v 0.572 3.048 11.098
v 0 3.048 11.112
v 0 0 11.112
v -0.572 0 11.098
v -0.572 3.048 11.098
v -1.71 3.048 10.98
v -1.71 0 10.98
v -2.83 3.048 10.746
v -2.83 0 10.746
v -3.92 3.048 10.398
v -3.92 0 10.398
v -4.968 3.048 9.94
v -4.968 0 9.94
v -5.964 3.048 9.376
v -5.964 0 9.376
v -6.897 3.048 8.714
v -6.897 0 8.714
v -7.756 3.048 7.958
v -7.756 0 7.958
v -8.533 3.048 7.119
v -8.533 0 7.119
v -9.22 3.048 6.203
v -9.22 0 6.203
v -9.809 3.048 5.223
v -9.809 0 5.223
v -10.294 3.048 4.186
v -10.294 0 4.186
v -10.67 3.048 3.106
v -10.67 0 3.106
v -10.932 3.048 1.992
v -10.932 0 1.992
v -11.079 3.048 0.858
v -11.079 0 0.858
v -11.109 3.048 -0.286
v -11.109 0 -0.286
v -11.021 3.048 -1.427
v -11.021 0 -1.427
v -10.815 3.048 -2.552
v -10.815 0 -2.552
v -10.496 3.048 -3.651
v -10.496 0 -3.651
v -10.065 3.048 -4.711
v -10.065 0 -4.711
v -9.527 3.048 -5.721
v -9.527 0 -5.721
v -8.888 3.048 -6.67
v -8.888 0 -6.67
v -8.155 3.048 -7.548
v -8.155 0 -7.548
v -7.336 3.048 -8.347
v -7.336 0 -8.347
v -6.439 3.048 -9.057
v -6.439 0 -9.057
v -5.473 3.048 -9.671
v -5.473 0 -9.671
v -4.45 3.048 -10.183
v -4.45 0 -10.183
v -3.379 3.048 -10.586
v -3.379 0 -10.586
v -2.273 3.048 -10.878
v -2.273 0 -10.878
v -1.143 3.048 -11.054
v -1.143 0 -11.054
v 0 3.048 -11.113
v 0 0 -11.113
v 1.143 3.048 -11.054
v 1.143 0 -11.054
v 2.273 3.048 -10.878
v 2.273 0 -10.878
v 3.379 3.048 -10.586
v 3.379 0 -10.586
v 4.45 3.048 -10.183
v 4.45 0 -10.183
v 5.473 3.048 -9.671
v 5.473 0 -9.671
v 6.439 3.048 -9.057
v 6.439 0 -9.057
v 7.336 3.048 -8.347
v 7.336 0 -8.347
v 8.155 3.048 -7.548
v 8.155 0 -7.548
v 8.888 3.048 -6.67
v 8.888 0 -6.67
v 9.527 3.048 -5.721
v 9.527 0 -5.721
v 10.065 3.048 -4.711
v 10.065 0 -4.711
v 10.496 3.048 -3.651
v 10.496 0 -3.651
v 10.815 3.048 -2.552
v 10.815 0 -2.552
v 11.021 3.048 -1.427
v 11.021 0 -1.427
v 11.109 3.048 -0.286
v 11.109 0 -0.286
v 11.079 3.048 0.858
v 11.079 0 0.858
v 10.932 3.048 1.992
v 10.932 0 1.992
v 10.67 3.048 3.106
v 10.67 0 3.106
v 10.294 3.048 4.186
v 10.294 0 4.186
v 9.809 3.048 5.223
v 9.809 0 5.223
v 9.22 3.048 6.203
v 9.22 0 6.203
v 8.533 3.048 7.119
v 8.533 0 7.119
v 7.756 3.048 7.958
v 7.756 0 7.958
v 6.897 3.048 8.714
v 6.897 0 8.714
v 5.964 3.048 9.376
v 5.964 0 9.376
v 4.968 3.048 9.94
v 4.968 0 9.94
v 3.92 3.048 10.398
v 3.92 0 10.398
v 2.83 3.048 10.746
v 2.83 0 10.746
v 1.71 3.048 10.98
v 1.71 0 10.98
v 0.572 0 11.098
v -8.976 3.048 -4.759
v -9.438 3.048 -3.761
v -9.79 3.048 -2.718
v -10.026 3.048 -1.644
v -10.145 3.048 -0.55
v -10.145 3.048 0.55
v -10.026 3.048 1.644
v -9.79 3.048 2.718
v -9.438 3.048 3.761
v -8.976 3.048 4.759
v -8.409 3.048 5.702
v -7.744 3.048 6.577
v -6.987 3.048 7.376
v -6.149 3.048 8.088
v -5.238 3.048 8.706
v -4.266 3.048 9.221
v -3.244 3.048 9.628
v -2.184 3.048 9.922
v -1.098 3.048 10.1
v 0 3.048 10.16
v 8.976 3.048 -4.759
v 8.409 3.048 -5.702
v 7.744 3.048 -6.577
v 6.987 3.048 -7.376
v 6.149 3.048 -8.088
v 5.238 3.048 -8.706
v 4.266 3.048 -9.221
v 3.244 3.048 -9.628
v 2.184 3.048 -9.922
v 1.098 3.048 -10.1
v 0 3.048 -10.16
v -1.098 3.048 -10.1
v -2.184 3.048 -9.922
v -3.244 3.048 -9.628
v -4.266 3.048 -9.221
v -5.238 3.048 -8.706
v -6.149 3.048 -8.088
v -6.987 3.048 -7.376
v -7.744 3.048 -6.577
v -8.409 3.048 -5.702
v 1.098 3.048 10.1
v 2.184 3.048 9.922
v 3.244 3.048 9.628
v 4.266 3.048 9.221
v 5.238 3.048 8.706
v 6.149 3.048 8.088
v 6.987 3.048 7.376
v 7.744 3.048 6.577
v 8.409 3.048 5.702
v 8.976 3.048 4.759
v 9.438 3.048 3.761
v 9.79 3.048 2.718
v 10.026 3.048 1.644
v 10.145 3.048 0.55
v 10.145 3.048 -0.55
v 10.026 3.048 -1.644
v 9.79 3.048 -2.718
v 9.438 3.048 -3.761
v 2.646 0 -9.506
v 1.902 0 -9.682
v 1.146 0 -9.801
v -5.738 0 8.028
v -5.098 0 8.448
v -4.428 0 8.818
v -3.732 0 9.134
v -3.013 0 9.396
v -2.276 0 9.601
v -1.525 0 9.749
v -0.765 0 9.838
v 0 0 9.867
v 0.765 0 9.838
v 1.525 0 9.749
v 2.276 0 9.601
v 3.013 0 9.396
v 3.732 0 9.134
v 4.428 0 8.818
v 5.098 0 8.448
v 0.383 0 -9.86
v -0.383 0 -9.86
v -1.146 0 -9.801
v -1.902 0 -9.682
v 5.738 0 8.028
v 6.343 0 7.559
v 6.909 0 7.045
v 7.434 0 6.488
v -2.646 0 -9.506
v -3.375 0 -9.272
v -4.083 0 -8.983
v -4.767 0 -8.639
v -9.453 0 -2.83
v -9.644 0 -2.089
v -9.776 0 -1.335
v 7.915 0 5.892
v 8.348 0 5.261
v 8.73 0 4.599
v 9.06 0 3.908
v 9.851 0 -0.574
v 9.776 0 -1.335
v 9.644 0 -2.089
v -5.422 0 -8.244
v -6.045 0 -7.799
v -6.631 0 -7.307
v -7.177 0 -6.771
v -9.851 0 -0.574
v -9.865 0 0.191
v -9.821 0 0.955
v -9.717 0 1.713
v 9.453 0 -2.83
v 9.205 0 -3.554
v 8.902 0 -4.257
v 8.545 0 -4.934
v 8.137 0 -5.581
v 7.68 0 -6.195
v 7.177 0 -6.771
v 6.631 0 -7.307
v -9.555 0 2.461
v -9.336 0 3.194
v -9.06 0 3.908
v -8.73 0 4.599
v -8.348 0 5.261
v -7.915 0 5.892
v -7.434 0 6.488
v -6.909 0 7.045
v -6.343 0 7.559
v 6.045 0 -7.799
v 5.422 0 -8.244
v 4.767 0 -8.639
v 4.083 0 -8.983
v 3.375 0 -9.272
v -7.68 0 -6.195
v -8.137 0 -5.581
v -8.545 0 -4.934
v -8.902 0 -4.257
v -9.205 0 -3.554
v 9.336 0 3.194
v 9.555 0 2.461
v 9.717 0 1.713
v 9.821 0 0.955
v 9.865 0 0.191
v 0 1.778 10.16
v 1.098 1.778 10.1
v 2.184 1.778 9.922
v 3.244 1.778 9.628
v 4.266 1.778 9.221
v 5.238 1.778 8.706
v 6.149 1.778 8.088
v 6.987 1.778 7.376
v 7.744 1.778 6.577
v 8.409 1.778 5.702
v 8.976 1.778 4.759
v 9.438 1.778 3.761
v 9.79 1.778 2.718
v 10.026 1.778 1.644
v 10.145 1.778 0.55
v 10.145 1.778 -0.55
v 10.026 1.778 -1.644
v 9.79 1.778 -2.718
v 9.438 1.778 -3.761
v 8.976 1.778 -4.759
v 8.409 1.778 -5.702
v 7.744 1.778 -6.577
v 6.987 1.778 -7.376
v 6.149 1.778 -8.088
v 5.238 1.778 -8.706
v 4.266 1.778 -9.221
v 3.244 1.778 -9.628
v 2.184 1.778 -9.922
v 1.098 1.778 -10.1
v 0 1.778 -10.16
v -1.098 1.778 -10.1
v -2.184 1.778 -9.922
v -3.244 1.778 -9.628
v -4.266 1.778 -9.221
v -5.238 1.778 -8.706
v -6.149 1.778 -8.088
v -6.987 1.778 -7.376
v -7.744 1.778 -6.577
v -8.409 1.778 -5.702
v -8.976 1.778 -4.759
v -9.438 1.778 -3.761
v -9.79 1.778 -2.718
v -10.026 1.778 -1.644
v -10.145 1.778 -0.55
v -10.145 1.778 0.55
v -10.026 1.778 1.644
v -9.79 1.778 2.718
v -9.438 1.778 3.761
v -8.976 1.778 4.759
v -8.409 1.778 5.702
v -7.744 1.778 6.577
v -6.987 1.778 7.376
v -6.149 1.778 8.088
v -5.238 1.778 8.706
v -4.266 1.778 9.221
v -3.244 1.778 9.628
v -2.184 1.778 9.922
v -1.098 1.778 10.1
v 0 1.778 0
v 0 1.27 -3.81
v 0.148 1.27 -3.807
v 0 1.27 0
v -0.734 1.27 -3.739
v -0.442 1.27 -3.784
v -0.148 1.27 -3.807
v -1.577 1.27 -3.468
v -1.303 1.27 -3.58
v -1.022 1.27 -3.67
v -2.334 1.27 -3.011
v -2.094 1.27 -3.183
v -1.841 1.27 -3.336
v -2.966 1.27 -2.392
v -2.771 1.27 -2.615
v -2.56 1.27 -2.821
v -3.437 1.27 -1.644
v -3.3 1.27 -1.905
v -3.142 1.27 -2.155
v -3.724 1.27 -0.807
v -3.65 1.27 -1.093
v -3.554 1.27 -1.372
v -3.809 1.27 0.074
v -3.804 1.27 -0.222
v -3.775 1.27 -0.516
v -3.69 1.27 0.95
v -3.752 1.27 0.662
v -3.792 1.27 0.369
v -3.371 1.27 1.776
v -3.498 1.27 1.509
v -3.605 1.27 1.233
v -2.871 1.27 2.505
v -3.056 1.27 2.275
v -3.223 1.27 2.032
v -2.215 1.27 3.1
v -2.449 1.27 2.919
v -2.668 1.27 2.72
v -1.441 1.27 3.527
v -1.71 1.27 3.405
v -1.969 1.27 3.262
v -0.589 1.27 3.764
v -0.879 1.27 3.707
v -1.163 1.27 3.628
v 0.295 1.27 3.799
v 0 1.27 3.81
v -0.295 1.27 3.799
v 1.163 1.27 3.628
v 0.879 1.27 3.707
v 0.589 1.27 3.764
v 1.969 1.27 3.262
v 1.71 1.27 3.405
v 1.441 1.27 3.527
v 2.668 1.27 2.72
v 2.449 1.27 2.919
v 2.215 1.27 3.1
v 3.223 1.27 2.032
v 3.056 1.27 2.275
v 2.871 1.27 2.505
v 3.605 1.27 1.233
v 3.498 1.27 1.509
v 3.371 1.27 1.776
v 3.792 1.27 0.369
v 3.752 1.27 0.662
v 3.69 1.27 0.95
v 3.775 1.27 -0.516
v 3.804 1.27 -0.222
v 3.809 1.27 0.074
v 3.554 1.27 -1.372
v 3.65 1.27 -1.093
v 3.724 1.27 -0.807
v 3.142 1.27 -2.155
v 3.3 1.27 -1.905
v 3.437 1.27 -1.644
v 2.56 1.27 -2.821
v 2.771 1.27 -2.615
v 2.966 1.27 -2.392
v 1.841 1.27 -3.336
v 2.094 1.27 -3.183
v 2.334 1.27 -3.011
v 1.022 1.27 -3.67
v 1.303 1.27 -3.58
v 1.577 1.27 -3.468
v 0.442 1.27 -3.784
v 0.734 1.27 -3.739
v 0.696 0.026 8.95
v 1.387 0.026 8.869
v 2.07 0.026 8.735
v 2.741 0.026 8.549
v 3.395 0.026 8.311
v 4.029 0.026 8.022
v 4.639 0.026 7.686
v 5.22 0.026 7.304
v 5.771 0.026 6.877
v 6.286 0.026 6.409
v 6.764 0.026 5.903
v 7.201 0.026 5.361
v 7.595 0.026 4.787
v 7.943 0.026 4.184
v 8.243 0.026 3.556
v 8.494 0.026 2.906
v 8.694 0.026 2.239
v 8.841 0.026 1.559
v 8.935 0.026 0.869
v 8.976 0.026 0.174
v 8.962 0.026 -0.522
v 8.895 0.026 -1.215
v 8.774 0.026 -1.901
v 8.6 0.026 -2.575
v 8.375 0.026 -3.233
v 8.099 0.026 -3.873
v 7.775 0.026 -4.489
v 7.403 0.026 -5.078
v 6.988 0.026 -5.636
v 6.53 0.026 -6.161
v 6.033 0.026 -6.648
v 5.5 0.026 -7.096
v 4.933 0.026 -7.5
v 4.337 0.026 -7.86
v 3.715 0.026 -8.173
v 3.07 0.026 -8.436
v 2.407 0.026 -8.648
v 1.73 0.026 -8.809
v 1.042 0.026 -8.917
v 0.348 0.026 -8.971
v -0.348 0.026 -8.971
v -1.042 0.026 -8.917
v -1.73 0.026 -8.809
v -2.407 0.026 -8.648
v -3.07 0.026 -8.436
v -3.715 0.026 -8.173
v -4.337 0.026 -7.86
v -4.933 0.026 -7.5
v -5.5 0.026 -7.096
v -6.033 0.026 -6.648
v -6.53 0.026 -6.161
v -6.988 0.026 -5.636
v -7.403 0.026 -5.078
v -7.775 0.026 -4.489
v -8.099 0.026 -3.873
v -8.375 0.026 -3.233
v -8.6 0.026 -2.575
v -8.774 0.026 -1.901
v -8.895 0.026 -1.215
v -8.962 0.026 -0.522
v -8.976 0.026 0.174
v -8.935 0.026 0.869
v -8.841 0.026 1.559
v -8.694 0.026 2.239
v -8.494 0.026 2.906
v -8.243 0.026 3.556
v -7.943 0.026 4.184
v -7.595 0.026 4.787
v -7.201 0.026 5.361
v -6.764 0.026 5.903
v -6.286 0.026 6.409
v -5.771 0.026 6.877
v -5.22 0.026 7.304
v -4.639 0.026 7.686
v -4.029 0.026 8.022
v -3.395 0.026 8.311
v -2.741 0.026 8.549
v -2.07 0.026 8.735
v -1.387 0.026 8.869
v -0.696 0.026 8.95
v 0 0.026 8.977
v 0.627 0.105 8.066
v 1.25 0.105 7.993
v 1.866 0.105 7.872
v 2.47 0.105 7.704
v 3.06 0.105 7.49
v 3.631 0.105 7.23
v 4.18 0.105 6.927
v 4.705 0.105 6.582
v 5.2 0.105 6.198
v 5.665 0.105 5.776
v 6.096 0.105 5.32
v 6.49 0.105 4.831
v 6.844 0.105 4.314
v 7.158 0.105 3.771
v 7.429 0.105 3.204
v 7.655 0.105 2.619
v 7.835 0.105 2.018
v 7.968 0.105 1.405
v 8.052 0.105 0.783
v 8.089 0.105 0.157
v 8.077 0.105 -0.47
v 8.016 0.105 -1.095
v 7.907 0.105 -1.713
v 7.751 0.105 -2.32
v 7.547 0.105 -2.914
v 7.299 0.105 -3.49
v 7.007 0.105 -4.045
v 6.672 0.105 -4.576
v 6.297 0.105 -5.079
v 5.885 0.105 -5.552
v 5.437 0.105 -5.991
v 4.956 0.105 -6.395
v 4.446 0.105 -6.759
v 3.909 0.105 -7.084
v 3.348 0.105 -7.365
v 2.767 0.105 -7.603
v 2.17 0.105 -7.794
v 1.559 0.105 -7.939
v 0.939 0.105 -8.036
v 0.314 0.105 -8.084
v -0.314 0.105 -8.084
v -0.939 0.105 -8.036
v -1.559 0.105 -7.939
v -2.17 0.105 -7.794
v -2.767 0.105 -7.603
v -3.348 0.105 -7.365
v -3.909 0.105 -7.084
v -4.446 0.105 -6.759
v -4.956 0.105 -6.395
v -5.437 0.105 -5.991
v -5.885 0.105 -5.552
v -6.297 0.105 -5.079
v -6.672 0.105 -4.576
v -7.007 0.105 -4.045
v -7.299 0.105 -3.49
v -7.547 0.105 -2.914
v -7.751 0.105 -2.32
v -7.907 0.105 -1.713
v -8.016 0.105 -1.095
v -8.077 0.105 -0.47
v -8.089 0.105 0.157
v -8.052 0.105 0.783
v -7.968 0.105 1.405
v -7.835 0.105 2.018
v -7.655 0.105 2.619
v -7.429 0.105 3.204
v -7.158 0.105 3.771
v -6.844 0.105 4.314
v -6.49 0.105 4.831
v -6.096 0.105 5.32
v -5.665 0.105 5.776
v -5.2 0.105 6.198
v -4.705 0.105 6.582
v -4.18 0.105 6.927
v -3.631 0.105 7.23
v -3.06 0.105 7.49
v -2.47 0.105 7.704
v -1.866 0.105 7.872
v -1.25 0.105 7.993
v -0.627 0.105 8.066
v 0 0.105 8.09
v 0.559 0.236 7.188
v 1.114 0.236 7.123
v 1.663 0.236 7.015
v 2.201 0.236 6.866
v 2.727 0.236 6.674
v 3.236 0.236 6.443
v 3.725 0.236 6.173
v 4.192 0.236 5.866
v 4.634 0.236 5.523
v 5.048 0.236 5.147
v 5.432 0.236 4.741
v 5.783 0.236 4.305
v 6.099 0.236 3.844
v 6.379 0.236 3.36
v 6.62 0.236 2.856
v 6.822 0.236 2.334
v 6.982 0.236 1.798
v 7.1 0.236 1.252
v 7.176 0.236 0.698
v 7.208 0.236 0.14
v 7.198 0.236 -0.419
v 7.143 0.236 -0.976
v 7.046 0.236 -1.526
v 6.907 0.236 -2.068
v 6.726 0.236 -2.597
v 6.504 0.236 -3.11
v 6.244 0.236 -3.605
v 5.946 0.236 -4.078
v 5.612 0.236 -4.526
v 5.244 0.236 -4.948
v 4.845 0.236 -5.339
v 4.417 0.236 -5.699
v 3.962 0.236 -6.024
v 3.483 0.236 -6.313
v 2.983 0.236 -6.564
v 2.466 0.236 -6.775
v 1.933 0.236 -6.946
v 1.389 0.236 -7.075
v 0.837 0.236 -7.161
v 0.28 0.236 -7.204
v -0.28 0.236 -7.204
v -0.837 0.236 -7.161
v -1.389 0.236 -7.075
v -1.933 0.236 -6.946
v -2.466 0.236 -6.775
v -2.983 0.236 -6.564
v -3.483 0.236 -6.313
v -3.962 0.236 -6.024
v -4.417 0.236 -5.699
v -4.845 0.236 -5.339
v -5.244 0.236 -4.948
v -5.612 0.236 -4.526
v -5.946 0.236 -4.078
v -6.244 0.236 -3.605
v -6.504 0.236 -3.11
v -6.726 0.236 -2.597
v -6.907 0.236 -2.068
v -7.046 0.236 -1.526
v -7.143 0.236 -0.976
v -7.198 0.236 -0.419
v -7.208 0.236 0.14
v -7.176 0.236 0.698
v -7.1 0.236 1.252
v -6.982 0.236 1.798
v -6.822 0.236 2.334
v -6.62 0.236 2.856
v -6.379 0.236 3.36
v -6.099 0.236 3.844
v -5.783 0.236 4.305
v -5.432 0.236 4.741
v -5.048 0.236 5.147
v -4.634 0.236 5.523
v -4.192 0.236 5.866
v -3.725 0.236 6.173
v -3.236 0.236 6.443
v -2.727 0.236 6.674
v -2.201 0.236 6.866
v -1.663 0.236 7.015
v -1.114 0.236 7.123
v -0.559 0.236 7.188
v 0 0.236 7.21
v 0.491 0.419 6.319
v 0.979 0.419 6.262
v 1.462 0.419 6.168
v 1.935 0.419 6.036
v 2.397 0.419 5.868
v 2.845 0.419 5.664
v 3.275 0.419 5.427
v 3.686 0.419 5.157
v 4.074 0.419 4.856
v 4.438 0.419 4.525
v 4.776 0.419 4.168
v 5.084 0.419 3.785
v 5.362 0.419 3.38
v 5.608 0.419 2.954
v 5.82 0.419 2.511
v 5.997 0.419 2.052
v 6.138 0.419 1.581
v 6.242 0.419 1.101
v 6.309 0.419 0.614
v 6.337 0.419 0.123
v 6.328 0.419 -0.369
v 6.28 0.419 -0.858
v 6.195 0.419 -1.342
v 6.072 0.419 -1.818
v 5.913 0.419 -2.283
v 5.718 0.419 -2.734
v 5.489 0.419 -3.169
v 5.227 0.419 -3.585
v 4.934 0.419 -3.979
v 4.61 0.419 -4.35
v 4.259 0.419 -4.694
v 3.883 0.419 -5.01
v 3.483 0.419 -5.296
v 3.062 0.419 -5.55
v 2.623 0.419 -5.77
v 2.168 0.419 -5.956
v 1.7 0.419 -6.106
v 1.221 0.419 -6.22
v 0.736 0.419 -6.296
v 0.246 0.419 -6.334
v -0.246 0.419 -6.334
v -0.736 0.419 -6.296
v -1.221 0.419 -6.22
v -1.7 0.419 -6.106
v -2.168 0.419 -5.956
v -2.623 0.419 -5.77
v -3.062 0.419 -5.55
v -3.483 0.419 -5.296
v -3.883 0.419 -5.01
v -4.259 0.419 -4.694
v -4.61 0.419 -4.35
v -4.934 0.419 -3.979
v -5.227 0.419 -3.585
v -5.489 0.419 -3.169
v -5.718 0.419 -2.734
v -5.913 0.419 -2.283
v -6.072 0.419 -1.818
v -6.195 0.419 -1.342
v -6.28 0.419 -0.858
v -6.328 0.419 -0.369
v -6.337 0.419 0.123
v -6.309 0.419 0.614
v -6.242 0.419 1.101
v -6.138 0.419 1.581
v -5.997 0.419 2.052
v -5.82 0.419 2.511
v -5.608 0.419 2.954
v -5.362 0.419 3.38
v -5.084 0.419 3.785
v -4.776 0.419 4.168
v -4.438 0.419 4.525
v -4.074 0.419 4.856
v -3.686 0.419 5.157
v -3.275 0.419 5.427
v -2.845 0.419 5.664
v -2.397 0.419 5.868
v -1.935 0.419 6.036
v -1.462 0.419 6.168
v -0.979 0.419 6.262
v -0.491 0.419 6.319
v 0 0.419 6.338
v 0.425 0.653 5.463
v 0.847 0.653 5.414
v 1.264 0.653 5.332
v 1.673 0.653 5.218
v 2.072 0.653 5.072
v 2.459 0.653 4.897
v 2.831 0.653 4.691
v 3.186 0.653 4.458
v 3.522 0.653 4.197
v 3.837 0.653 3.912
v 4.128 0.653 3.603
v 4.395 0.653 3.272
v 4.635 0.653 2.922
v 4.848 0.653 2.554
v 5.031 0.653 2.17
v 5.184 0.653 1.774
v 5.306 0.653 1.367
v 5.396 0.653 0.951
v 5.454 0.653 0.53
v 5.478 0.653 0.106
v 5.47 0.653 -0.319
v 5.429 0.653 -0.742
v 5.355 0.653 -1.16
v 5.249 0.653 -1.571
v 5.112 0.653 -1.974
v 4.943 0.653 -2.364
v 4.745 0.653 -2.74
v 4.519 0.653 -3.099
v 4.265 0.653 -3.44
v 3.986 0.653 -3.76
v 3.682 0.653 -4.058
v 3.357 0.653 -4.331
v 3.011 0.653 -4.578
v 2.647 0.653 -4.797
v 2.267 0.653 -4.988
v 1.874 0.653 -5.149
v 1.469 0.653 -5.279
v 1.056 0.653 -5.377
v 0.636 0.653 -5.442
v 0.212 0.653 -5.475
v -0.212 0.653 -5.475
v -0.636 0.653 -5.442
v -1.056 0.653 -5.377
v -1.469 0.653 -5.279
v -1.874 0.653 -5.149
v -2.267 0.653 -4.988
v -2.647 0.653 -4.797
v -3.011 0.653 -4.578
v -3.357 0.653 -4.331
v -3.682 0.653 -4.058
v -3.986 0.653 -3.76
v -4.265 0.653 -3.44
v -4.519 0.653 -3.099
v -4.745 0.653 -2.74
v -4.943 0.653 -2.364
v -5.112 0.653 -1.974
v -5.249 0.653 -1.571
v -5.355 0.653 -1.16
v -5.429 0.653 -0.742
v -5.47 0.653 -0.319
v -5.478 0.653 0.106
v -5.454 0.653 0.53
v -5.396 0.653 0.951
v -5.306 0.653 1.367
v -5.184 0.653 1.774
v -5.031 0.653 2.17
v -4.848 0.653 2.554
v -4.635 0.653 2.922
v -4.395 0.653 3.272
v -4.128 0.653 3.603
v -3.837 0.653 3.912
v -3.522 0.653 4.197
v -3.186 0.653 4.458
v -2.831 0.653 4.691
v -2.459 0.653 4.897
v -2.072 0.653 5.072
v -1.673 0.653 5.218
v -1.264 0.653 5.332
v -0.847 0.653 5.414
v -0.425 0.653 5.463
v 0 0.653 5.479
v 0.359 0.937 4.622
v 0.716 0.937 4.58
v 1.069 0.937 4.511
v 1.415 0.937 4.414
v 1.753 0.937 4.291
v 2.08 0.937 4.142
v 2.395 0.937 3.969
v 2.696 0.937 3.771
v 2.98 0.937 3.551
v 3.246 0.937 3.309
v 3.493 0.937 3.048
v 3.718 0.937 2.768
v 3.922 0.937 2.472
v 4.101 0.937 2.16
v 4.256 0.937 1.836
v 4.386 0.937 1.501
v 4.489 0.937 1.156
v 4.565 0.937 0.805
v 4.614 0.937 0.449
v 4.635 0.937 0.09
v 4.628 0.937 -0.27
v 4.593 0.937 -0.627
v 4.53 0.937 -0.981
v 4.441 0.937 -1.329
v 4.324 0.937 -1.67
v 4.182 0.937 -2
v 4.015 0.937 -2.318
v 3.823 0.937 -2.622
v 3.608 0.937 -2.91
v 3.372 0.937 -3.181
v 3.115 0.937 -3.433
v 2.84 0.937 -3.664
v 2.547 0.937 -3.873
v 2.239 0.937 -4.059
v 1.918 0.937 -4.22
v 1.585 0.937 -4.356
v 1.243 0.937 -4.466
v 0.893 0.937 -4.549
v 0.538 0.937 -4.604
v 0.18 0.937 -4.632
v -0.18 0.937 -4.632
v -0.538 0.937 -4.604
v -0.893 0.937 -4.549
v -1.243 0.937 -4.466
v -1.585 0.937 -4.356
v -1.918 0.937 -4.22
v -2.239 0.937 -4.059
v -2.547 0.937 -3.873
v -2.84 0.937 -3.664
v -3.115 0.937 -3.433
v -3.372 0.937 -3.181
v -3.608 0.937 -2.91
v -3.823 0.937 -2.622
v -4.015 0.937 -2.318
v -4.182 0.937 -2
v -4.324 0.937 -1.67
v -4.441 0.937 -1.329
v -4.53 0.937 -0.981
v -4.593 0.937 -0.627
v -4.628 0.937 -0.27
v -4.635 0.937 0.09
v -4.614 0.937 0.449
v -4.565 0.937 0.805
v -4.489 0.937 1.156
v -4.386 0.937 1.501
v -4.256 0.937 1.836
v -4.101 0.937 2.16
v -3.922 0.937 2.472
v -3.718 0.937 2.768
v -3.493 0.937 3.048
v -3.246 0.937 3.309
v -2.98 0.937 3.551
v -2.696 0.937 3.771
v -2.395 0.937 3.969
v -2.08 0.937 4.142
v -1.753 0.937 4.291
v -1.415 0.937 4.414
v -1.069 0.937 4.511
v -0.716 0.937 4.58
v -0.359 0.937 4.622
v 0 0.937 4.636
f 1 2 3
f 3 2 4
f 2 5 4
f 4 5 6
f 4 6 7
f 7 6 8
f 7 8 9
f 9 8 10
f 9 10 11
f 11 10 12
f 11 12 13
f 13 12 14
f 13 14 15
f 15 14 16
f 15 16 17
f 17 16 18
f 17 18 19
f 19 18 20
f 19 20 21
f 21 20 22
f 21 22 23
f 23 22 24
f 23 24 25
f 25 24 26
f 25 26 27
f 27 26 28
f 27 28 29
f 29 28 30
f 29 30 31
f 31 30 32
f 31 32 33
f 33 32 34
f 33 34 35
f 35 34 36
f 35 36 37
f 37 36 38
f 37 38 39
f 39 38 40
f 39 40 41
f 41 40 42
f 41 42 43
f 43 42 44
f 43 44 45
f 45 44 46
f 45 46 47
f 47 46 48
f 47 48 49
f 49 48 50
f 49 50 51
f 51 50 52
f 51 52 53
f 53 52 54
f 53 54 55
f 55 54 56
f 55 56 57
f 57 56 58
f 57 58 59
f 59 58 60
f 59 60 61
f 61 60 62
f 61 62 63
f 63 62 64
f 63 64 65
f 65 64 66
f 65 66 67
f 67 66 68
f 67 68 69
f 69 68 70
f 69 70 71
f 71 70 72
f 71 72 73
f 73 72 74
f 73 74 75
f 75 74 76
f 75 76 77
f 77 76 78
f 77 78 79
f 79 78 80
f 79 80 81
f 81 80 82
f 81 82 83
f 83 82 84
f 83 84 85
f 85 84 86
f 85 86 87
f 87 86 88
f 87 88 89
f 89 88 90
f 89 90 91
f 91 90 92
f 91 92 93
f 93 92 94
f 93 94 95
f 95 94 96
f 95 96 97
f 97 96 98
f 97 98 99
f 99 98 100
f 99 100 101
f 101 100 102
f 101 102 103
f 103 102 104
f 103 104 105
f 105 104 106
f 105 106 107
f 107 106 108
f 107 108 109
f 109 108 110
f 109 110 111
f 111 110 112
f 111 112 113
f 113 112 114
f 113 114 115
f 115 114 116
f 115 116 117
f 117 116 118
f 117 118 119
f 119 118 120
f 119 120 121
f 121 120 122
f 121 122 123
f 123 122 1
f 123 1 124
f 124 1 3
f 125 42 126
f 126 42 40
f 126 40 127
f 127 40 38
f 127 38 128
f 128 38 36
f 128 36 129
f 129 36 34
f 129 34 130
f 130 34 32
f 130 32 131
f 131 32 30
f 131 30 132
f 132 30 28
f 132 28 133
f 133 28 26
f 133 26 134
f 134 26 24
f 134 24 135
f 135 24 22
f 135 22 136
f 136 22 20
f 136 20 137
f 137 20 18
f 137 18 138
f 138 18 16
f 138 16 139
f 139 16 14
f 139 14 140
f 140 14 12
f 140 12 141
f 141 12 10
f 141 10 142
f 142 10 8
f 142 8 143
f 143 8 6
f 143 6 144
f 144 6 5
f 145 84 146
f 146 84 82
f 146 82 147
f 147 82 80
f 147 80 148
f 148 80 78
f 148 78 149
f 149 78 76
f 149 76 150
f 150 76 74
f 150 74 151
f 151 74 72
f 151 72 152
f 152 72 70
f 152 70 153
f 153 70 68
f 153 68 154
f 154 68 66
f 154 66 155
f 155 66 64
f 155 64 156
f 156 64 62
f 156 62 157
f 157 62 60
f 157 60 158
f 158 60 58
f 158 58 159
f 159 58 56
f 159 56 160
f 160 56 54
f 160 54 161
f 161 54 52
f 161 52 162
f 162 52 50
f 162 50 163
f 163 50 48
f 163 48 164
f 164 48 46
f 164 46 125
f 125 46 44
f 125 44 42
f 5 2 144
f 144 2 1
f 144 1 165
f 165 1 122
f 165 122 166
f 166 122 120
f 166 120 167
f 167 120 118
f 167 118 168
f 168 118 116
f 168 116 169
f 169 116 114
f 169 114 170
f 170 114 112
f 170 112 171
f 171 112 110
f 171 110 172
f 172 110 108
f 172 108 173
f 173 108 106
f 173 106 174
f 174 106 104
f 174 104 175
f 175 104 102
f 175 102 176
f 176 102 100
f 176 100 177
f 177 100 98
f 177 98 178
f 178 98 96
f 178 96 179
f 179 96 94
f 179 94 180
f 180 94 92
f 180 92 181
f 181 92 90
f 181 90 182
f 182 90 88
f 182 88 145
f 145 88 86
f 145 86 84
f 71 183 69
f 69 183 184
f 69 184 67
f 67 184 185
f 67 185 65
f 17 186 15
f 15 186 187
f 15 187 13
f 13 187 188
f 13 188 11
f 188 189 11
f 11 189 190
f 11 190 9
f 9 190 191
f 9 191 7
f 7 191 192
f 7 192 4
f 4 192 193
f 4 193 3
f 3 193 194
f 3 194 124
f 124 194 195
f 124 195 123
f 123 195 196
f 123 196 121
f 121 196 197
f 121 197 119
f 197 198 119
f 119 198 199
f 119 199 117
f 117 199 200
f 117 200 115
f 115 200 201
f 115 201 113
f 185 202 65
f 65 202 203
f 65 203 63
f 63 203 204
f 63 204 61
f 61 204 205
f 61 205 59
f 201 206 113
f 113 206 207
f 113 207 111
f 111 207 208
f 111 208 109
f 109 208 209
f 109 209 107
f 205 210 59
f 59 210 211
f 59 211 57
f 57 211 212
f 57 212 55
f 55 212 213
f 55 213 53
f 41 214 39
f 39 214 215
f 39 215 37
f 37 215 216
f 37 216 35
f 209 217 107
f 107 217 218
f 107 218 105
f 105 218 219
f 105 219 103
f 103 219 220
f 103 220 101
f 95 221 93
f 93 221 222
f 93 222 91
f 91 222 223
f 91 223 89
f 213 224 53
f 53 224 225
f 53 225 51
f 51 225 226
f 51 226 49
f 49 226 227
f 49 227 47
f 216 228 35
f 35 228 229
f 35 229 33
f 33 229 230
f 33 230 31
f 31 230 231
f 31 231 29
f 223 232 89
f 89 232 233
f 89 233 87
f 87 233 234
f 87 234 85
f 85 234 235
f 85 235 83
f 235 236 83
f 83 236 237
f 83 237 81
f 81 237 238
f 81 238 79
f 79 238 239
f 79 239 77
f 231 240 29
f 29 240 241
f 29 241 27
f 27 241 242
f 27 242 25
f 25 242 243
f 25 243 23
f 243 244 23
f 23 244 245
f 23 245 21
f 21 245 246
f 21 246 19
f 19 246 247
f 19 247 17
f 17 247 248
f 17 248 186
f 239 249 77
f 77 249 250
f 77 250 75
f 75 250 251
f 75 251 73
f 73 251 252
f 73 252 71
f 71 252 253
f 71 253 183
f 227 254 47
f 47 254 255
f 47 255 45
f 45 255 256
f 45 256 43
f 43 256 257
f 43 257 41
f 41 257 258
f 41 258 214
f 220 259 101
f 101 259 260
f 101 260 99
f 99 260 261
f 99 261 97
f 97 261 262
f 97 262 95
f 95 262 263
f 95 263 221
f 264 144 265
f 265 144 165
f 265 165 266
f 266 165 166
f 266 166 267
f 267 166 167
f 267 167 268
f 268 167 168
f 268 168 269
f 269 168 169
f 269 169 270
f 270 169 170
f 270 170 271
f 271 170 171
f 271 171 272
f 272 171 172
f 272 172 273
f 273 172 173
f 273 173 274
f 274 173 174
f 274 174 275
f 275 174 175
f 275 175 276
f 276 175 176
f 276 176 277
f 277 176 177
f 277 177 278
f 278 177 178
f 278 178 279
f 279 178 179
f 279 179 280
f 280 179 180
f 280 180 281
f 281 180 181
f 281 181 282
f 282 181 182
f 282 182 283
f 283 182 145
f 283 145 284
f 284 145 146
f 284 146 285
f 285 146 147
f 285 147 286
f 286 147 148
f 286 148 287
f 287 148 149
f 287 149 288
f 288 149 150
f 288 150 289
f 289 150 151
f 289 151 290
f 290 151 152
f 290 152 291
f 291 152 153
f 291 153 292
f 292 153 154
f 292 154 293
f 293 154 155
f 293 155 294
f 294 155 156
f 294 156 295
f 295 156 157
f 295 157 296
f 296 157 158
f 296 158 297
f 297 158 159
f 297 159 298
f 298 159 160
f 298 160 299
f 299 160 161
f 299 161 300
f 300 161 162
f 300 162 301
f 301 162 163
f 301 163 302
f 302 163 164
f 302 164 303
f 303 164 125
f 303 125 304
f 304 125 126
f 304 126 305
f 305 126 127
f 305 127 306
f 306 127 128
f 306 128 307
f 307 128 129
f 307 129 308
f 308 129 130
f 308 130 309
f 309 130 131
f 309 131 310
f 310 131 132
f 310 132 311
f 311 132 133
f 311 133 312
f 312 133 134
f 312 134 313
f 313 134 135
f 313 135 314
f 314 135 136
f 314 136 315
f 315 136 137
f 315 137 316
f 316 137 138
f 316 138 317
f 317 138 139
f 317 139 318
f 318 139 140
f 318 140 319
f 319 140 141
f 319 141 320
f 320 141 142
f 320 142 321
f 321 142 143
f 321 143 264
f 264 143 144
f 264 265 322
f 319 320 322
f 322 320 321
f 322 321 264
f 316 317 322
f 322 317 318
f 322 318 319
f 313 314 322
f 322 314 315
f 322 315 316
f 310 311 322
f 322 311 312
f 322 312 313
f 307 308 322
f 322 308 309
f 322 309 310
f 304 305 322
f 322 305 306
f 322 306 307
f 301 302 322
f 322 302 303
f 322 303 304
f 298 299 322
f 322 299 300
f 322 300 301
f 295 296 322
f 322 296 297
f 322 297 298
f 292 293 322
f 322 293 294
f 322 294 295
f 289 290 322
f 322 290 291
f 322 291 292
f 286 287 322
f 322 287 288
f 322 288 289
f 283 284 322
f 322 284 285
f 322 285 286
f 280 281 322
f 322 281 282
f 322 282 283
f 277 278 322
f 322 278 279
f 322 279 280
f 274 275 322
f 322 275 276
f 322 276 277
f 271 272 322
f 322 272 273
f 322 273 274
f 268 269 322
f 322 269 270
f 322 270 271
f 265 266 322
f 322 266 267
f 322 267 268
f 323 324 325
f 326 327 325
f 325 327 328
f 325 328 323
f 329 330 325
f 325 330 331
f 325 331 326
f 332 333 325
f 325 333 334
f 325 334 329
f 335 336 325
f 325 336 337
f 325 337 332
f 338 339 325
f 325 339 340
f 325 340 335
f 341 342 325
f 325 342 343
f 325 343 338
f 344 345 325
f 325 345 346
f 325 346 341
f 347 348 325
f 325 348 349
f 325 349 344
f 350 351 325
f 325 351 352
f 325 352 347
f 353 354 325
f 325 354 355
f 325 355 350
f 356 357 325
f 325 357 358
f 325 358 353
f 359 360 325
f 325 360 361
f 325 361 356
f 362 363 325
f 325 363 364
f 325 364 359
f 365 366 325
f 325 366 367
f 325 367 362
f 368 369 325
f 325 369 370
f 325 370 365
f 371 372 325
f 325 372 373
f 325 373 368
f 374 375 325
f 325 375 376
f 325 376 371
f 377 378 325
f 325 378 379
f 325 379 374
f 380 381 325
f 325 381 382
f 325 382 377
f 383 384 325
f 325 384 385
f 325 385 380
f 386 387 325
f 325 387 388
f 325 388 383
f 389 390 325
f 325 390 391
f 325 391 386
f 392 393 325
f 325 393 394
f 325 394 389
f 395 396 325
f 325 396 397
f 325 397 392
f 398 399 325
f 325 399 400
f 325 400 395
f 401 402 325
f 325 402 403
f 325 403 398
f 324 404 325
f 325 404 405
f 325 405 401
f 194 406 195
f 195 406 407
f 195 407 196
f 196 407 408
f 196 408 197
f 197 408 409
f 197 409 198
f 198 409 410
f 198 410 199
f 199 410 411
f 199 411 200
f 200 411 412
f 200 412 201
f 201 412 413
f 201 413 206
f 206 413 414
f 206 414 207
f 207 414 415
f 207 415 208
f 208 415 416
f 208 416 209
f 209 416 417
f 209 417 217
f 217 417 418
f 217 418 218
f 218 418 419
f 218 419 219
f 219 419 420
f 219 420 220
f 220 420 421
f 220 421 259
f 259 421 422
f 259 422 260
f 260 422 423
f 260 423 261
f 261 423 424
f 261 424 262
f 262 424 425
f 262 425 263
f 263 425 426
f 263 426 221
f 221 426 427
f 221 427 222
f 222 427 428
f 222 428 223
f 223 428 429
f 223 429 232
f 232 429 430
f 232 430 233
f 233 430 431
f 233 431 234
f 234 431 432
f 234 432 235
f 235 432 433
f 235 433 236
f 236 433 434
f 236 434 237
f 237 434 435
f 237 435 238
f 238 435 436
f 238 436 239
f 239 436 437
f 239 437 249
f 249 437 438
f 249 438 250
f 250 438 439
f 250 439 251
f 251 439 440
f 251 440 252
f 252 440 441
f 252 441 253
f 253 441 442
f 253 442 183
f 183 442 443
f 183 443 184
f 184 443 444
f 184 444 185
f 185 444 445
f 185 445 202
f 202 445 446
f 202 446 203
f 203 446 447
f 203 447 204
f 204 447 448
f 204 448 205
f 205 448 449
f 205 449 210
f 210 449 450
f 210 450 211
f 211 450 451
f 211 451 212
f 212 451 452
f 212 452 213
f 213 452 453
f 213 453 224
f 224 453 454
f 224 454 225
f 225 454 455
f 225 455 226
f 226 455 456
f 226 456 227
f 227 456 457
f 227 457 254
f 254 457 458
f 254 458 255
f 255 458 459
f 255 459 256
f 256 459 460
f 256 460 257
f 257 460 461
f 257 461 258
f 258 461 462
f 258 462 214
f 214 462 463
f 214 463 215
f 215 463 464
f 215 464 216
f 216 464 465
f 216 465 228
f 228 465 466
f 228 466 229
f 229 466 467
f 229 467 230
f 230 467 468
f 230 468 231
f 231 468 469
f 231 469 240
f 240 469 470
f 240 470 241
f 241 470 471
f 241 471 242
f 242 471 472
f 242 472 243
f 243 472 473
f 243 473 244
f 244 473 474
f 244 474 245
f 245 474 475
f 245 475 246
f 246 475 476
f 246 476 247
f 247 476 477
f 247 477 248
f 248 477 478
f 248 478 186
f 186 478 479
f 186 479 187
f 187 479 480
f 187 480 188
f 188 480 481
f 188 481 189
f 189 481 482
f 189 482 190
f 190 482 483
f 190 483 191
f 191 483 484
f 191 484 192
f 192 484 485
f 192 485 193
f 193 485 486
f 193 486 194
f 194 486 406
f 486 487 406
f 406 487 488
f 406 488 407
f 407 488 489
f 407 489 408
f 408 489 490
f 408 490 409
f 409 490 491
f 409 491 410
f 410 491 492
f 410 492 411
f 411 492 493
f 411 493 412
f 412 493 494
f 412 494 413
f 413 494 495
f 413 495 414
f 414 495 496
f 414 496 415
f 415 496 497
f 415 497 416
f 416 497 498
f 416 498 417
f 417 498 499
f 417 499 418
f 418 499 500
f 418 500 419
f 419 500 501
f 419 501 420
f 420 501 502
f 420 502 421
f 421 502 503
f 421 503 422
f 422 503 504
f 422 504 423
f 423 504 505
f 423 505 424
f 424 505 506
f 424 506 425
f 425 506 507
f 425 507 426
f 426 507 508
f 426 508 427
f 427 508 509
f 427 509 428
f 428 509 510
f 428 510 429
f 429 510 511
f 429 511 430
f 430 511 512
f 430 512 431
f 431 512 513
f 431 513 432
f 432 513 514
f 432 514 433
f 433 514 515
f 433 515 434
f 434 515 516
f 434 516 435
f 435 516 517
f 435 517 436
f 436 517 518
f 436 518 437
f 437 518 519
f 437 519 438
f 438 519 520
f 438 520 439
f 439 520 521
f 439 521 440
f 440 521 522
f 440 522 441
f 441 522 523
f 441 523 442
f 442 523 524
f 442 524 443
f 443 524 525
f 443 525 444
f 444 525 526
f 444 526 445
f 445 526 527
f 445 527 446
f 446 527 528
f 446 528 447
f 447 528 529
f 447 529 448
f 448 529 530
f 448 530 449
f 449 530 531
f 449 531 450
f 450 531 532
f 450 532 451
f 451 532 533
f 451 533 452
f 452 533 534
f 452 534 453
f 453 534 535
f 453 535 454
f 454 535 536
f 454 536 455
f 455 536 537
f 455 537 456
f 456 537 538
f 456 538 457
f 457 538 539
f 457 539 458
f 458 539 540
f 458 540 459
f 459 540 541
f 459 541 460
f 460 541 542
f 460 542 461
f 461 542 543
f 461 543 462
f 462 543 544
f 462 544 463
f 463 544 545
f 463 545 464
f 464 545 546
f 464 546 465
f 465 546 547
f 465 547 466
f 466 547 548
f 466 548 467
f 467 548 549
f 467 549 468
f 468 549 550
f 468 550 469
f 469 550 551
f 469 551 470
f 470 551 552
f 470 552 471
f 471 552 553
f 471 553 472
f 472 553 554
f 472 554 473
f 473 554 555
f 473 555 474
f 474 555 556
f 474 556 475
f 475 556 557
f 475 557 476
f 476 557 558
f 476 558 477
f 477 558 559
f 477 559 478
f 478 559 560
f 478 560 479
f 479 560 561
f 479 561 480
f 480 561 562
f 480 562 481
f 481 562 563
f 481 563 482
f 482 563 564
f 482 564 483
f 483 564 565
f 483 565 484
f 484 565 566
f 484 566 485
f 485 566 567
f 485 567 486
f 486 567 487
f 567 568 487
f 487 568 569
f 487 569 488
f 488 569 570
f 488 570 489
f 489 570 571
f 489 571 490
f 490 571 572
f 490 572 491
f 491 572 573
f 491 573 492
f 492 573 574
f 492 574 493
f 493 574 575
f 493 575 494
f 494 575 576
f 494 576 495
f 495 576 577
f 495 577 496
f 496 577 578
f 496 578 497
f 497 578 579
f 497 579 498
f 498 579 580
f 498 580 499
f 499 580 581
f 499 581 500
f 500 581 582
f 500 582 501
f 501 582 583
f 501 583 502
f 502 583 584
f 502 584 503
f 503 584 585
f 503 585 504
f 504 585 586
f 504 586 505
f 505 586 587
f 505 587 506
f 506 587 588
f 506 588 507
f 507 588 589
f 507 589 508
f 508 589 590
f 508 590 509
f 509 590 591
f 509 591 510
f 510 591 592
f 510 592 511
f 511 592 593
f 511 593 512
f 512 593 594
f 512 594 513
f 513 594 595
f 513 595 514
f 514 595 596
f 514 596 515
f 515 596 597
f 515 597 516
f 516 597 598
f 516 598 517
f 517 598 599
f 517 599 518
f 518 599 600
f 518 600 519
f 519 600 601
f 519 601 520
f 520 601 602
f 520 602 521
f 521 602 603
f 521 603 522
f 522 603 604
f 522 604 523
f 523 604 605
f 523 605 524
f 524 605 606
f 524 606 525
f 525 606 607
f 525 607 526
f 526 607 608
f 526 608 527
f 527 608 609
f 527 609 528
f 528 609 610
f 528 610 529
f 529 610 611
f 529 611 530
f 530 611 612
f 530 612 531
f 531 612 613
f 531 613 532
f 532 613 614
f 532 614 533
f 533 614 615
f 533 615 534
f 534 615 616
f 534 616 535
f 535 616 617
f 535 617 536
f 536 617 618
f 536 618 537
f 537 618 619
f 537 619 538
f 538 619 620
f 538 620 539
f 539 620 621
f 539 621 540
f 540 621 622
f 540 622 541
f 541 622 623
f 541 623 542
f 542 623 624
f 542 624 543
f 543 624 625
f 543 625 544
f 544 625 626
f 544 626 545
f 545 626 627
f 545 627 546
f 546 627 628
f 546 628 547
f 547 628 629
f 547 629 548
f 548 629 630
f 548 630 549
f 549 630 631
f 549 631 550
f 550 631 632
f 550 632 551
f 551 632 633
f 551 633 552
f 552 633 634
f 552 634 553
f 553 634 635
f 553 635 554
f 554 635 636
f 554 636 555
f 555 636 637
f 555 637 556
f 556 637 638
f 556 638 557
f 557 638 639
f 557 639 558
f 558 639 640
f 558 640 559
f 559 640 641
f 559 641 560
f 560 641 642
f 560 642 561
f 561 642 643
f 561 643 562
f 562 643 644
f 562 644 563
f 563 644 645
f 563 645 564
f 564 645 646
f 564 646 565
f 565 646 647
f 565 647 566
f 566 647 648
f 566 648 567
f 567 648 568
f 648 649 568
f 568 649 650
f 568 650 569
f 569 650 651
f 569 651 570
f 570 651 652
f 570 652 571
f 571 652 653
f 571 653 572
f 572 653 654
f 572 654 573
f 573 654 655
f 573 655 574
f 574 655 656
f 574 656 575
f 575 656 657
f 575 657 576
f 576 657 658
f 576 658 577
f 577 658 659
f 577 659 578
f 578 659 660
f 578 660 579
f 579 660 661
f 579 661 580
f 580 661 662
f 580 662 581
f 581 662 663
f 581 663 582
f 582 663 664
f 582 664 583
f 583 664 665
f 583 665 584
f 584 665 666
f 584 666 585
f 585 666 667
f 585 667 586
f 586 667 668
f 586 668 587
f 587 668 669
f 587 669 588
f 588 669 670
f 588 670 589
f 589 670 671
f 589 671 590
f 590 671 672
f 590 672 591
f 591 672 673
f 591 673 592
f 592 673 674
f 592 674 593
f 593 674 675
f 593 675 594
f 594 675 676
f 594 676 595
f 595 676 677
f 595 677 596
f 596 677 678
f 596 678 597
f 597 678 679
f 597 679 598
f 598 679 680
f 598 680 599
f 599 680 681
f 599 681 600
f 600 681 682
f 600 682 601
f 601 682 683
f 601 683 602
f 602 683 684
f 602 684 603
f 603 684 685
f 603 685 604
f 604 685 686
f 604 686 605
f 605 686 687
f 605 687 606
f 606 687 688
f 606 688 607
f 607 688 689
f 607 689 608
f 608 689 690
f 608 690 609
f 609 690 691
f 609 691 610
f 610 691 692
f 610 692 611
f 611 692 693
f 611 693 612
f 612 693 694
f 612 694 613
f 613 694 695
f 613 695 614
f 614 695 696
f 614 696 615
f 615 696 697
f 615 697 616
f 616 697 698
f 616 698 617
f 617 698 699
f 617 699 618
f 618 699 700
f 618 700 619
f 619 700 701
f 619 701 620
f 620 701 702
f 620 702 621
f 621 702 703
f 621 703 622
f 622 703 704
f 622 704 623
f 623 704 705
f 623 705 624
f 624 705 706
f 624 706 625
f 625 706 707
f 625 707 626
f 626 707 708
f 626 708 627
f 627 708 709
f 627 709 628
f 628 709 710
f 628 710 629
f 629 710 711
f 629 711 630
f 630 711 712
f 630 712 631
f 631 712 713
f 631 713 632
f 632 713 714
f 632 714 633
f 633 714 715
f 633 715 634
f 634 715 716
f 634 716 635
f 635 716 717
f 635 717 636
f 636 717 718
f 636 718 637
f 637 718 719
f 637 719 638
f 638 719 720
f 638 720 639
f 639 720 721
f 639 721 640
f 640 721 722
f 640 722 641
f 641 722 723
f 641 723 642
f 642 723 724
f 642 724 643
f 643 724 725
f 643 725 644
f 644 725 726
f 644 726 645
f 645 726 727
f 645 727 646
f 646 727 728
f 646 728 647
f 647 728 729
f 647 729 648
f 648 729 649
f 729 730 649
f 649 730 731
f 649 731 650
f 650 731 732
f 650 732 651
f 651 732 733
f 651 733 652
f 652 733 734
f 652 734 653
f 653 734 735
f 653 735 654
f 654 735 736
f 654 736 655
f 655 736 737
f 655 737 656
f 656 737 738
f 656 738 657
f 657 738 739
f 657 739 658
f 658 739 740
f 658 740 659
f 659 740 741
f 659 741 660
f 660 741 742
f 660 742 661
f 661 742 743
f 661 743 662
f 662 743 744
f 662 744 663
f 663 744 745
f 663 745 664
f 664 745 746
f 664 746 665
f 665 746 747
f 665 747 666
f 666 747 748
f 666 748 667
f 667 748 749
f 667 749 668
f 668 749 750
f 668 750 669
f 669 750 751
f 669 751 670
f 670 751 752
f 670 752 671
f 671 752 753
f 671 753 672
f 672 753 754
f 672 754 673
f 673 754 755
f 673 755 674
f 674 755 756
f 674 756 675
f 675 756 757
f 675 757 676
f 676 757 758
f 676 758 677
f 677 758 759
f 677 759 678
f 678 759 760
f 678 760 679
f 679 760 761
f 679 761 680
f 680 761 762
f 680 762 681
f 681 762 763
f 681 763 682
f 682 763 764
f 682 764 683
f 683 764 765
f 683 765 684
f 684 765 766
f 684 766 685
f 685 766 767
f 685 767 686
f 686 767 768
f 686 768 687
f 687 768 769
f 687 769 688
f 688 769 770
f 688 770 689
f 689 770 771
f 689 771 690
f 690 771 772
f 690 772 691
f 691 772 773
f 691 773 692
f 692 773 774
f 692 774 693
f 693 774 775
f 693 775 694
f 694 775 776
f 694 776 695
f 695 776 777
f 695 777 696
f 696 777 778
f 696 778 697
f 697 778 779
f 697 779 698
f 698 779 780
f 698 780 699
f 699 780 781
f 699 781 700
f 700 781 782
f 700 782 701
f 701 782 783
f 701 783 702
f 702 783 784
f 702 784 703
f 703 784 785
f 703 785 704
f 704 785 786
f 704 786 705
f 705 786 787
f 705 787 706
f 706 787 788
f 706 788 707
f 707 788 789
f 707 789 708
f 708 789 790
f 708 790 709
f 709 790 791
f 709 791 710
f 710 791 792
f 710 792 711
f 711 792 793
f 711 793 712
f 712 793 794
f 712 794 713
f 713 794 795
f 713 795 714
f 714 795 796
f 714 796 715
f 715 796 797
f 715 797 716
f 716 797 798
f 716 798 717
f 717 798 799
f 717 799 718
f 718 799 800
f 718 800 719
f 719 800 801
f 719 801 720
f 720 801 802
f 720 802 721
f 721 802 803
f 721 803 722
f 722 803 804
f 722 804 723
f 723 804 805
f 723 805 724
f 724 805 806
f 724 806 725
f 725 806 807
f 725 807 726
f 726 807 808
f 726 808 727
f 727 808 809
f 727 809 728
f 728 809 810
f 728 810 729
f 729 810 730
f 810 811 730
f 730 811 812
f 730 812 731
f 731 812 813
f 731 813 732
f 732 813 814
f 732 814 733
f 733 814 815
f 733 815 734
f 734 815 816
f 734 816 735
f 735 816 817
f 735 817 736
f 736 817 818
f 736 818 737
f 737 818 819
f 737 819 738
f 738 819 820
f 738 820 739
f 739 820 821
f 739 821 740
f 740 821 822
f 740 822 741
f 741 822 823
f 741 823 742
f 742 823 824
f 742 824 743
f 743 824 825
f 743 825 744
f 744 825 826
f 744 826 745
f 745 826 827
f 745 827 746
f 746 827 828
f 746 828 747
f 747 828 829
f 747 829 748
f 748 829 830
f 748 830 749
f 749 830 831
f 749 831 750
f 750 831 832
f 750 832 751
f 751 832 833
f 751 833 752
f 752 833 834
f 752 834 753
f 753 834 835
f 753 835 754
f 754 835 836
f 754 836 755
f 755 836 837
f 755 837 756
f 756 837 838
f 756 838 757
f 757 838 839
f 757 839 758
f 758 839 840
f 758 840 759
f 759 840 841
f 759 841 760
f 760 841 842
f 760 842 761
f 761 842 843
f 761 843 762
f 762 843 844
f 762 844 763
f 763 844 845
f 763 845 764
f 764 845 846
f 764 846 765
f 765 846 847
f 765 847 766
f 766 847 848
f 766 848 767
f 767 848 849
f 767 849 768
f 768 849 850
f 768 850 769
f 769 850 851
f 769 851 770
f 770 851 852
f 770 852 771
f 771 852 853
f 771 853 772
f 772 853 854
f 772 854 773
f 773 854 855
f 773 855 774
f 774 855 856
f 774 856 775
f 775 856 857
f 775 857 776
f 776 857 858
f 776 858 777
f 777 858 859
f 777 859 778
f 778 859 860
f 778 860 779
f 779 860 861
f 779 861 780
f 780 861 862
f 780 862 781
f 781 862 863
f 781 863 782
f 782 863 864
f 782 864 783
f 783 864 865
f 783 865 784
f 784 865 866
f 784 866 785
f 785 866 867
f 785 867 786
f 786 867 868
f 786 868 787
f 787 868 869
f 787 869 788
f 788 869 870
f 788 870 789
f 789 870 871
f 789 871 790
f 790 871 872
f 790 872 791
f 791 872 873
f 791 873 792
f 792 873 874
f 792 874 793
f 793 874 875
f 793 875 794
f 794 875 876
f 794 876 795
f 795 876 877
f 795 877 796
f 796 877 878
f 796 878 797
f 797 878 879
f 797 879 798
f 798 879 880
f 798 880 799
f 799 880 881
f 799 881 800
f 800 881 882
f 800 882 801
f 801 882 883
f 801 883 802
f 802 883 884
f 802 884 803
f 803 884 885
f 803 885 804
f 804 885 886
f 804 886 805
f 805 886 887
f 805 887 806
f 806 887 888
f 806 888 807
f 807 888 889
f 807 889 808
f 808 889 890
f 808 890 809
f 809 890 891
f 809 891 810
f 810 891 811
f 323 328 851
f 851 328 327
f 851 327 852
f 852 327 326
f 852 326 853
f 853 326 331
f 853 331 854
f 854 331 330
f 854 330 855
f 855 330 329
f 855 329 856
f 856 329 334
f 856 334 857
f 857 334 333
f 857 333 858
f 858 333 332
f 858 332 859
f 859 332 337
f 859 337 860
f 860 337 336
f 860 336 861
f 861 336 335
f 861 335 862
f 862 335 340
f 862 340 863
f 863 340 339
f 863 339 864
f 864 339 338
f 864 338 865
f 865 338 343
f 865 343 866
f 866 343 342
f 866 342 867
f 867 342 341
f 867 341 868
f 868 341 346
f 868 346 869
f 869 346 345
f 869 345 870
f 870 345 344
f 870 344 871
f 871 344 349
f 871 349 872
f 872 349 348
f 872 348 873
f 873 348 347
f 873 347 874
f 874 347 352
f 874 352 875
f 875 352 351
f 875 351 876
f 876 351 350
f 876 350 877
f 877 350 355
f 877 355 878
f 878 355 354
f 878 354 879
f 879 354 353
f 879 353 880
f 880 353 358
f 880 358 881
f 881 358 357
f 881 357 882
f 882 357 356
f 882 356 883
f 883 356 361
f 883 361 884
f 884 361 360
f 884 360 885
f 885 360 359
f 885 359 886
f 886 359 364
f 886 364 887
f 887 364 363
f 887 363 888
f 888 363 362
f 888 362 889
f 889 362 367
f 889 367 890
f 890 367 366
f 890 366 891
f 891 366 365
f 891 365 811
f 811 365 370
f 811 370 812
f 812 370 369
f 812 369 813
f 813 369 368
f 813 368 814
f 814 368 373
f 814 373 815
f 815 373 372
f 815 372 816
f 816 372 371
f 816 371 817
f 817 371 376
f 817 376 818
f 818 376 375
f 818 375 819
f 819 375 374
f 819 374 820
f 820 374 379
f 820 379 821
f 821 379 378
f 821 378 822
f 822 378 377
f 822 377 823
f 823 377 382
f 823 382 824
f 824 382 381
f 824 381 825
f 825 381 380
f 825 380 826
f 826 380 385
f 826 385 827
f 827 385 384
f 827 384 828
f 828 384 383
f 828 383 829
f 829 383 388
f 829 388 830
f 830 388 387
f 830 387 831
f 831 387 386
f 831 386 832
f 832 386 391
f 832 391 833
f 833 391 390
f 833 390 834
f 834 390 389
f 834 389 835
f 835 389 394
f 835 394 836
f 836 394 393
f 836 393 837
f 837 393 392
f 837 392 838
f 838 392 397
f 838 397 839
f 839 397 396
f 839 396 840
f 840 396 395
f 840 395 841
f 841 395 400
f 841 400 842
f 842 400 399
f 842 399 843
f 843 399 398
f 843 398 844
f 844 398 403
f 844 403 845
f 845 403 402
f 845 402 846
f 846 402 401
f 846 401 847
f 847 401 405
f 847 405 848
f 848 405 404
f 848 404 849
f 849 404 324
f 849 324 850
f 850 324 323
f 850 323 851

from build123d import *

# Parameters (mm, degrees)
SKETCH2_R           = 11.1125
BOSS_EXTRUDE1_DEPTH = 3.048
SKETCH3_R           = 10.16
CUT_EXTRUDE1_DEPTH  = 1.27
SKETCH4_R           = 3.81
CUT_EXTRUDE2_DEPTH  = 1.27
FILLET1_R           = 15.08


with BuildPart() as part:
    # Sketch2 → Boss-Extrude1 (new body)
    with BuildSketch(Plane(origin=(0, 0, 0), x_dir=(1, 0, 0), z_dir=(0, 1, 0))):
        with Locations(Location((0, 0, 0), (0, 0, 90))):
            Circle(SKETCH2_R)
    extrude(amount=BOSS_EXTRUDE1_DEPTH)

    # Sketch3 → Cut-Extrude1 (cut)
    with BuildSketch(Plane(origin=(0, 3.048, 0), x_dir=(1, 0, 0), z_dir=(0, 1, 0))):
        with Locations(Location((0, 0, 0), (0, 0, 270))):
            Circle(SKETCH3_R)
    extrude(amount=-CUT_EXTRUDE1_DEPTH, mode=Mode.SUBTRACT)

    # Sketch4 → Cut-Extrude2 (cut)
    with BuildSketch(Plane(origin=(0, 0, 0), x_dir=(-1, 0, 0), z_dir=(0, -1, 0))):
        with Locations(Location((0, 0, 0), (0, 0, 90))):
            Circle(SKETCH4_R)
    extrude(amount=-CUT_EXTRUDE2_DEPTH, mode=Mode.SUBTRACT)

    # Fillet1
    # the kernel refuses this fillet: 15.08 mm, written as the material it takes off along each edge
    with BuildSketch(Plane(origin=(0, 0, 0), x_dir=(0, 0, -1), z_dir=(-1, 0, 0))) as fillet1_piece_1:
        with BuildLine():
            CenterArc((9.867251852, -15.08), FILLET1_R, 90, 23.682902999)
            Line((3.81, -1.27), (3.81, 0))
            Line((3.81, 0), (9.867251852, 0))
        make_face()
    revolve(axis=Axis((0, 0, 0), (0, -1, 0)), mode=Mode.SUBTRACT)


solid = part.part
